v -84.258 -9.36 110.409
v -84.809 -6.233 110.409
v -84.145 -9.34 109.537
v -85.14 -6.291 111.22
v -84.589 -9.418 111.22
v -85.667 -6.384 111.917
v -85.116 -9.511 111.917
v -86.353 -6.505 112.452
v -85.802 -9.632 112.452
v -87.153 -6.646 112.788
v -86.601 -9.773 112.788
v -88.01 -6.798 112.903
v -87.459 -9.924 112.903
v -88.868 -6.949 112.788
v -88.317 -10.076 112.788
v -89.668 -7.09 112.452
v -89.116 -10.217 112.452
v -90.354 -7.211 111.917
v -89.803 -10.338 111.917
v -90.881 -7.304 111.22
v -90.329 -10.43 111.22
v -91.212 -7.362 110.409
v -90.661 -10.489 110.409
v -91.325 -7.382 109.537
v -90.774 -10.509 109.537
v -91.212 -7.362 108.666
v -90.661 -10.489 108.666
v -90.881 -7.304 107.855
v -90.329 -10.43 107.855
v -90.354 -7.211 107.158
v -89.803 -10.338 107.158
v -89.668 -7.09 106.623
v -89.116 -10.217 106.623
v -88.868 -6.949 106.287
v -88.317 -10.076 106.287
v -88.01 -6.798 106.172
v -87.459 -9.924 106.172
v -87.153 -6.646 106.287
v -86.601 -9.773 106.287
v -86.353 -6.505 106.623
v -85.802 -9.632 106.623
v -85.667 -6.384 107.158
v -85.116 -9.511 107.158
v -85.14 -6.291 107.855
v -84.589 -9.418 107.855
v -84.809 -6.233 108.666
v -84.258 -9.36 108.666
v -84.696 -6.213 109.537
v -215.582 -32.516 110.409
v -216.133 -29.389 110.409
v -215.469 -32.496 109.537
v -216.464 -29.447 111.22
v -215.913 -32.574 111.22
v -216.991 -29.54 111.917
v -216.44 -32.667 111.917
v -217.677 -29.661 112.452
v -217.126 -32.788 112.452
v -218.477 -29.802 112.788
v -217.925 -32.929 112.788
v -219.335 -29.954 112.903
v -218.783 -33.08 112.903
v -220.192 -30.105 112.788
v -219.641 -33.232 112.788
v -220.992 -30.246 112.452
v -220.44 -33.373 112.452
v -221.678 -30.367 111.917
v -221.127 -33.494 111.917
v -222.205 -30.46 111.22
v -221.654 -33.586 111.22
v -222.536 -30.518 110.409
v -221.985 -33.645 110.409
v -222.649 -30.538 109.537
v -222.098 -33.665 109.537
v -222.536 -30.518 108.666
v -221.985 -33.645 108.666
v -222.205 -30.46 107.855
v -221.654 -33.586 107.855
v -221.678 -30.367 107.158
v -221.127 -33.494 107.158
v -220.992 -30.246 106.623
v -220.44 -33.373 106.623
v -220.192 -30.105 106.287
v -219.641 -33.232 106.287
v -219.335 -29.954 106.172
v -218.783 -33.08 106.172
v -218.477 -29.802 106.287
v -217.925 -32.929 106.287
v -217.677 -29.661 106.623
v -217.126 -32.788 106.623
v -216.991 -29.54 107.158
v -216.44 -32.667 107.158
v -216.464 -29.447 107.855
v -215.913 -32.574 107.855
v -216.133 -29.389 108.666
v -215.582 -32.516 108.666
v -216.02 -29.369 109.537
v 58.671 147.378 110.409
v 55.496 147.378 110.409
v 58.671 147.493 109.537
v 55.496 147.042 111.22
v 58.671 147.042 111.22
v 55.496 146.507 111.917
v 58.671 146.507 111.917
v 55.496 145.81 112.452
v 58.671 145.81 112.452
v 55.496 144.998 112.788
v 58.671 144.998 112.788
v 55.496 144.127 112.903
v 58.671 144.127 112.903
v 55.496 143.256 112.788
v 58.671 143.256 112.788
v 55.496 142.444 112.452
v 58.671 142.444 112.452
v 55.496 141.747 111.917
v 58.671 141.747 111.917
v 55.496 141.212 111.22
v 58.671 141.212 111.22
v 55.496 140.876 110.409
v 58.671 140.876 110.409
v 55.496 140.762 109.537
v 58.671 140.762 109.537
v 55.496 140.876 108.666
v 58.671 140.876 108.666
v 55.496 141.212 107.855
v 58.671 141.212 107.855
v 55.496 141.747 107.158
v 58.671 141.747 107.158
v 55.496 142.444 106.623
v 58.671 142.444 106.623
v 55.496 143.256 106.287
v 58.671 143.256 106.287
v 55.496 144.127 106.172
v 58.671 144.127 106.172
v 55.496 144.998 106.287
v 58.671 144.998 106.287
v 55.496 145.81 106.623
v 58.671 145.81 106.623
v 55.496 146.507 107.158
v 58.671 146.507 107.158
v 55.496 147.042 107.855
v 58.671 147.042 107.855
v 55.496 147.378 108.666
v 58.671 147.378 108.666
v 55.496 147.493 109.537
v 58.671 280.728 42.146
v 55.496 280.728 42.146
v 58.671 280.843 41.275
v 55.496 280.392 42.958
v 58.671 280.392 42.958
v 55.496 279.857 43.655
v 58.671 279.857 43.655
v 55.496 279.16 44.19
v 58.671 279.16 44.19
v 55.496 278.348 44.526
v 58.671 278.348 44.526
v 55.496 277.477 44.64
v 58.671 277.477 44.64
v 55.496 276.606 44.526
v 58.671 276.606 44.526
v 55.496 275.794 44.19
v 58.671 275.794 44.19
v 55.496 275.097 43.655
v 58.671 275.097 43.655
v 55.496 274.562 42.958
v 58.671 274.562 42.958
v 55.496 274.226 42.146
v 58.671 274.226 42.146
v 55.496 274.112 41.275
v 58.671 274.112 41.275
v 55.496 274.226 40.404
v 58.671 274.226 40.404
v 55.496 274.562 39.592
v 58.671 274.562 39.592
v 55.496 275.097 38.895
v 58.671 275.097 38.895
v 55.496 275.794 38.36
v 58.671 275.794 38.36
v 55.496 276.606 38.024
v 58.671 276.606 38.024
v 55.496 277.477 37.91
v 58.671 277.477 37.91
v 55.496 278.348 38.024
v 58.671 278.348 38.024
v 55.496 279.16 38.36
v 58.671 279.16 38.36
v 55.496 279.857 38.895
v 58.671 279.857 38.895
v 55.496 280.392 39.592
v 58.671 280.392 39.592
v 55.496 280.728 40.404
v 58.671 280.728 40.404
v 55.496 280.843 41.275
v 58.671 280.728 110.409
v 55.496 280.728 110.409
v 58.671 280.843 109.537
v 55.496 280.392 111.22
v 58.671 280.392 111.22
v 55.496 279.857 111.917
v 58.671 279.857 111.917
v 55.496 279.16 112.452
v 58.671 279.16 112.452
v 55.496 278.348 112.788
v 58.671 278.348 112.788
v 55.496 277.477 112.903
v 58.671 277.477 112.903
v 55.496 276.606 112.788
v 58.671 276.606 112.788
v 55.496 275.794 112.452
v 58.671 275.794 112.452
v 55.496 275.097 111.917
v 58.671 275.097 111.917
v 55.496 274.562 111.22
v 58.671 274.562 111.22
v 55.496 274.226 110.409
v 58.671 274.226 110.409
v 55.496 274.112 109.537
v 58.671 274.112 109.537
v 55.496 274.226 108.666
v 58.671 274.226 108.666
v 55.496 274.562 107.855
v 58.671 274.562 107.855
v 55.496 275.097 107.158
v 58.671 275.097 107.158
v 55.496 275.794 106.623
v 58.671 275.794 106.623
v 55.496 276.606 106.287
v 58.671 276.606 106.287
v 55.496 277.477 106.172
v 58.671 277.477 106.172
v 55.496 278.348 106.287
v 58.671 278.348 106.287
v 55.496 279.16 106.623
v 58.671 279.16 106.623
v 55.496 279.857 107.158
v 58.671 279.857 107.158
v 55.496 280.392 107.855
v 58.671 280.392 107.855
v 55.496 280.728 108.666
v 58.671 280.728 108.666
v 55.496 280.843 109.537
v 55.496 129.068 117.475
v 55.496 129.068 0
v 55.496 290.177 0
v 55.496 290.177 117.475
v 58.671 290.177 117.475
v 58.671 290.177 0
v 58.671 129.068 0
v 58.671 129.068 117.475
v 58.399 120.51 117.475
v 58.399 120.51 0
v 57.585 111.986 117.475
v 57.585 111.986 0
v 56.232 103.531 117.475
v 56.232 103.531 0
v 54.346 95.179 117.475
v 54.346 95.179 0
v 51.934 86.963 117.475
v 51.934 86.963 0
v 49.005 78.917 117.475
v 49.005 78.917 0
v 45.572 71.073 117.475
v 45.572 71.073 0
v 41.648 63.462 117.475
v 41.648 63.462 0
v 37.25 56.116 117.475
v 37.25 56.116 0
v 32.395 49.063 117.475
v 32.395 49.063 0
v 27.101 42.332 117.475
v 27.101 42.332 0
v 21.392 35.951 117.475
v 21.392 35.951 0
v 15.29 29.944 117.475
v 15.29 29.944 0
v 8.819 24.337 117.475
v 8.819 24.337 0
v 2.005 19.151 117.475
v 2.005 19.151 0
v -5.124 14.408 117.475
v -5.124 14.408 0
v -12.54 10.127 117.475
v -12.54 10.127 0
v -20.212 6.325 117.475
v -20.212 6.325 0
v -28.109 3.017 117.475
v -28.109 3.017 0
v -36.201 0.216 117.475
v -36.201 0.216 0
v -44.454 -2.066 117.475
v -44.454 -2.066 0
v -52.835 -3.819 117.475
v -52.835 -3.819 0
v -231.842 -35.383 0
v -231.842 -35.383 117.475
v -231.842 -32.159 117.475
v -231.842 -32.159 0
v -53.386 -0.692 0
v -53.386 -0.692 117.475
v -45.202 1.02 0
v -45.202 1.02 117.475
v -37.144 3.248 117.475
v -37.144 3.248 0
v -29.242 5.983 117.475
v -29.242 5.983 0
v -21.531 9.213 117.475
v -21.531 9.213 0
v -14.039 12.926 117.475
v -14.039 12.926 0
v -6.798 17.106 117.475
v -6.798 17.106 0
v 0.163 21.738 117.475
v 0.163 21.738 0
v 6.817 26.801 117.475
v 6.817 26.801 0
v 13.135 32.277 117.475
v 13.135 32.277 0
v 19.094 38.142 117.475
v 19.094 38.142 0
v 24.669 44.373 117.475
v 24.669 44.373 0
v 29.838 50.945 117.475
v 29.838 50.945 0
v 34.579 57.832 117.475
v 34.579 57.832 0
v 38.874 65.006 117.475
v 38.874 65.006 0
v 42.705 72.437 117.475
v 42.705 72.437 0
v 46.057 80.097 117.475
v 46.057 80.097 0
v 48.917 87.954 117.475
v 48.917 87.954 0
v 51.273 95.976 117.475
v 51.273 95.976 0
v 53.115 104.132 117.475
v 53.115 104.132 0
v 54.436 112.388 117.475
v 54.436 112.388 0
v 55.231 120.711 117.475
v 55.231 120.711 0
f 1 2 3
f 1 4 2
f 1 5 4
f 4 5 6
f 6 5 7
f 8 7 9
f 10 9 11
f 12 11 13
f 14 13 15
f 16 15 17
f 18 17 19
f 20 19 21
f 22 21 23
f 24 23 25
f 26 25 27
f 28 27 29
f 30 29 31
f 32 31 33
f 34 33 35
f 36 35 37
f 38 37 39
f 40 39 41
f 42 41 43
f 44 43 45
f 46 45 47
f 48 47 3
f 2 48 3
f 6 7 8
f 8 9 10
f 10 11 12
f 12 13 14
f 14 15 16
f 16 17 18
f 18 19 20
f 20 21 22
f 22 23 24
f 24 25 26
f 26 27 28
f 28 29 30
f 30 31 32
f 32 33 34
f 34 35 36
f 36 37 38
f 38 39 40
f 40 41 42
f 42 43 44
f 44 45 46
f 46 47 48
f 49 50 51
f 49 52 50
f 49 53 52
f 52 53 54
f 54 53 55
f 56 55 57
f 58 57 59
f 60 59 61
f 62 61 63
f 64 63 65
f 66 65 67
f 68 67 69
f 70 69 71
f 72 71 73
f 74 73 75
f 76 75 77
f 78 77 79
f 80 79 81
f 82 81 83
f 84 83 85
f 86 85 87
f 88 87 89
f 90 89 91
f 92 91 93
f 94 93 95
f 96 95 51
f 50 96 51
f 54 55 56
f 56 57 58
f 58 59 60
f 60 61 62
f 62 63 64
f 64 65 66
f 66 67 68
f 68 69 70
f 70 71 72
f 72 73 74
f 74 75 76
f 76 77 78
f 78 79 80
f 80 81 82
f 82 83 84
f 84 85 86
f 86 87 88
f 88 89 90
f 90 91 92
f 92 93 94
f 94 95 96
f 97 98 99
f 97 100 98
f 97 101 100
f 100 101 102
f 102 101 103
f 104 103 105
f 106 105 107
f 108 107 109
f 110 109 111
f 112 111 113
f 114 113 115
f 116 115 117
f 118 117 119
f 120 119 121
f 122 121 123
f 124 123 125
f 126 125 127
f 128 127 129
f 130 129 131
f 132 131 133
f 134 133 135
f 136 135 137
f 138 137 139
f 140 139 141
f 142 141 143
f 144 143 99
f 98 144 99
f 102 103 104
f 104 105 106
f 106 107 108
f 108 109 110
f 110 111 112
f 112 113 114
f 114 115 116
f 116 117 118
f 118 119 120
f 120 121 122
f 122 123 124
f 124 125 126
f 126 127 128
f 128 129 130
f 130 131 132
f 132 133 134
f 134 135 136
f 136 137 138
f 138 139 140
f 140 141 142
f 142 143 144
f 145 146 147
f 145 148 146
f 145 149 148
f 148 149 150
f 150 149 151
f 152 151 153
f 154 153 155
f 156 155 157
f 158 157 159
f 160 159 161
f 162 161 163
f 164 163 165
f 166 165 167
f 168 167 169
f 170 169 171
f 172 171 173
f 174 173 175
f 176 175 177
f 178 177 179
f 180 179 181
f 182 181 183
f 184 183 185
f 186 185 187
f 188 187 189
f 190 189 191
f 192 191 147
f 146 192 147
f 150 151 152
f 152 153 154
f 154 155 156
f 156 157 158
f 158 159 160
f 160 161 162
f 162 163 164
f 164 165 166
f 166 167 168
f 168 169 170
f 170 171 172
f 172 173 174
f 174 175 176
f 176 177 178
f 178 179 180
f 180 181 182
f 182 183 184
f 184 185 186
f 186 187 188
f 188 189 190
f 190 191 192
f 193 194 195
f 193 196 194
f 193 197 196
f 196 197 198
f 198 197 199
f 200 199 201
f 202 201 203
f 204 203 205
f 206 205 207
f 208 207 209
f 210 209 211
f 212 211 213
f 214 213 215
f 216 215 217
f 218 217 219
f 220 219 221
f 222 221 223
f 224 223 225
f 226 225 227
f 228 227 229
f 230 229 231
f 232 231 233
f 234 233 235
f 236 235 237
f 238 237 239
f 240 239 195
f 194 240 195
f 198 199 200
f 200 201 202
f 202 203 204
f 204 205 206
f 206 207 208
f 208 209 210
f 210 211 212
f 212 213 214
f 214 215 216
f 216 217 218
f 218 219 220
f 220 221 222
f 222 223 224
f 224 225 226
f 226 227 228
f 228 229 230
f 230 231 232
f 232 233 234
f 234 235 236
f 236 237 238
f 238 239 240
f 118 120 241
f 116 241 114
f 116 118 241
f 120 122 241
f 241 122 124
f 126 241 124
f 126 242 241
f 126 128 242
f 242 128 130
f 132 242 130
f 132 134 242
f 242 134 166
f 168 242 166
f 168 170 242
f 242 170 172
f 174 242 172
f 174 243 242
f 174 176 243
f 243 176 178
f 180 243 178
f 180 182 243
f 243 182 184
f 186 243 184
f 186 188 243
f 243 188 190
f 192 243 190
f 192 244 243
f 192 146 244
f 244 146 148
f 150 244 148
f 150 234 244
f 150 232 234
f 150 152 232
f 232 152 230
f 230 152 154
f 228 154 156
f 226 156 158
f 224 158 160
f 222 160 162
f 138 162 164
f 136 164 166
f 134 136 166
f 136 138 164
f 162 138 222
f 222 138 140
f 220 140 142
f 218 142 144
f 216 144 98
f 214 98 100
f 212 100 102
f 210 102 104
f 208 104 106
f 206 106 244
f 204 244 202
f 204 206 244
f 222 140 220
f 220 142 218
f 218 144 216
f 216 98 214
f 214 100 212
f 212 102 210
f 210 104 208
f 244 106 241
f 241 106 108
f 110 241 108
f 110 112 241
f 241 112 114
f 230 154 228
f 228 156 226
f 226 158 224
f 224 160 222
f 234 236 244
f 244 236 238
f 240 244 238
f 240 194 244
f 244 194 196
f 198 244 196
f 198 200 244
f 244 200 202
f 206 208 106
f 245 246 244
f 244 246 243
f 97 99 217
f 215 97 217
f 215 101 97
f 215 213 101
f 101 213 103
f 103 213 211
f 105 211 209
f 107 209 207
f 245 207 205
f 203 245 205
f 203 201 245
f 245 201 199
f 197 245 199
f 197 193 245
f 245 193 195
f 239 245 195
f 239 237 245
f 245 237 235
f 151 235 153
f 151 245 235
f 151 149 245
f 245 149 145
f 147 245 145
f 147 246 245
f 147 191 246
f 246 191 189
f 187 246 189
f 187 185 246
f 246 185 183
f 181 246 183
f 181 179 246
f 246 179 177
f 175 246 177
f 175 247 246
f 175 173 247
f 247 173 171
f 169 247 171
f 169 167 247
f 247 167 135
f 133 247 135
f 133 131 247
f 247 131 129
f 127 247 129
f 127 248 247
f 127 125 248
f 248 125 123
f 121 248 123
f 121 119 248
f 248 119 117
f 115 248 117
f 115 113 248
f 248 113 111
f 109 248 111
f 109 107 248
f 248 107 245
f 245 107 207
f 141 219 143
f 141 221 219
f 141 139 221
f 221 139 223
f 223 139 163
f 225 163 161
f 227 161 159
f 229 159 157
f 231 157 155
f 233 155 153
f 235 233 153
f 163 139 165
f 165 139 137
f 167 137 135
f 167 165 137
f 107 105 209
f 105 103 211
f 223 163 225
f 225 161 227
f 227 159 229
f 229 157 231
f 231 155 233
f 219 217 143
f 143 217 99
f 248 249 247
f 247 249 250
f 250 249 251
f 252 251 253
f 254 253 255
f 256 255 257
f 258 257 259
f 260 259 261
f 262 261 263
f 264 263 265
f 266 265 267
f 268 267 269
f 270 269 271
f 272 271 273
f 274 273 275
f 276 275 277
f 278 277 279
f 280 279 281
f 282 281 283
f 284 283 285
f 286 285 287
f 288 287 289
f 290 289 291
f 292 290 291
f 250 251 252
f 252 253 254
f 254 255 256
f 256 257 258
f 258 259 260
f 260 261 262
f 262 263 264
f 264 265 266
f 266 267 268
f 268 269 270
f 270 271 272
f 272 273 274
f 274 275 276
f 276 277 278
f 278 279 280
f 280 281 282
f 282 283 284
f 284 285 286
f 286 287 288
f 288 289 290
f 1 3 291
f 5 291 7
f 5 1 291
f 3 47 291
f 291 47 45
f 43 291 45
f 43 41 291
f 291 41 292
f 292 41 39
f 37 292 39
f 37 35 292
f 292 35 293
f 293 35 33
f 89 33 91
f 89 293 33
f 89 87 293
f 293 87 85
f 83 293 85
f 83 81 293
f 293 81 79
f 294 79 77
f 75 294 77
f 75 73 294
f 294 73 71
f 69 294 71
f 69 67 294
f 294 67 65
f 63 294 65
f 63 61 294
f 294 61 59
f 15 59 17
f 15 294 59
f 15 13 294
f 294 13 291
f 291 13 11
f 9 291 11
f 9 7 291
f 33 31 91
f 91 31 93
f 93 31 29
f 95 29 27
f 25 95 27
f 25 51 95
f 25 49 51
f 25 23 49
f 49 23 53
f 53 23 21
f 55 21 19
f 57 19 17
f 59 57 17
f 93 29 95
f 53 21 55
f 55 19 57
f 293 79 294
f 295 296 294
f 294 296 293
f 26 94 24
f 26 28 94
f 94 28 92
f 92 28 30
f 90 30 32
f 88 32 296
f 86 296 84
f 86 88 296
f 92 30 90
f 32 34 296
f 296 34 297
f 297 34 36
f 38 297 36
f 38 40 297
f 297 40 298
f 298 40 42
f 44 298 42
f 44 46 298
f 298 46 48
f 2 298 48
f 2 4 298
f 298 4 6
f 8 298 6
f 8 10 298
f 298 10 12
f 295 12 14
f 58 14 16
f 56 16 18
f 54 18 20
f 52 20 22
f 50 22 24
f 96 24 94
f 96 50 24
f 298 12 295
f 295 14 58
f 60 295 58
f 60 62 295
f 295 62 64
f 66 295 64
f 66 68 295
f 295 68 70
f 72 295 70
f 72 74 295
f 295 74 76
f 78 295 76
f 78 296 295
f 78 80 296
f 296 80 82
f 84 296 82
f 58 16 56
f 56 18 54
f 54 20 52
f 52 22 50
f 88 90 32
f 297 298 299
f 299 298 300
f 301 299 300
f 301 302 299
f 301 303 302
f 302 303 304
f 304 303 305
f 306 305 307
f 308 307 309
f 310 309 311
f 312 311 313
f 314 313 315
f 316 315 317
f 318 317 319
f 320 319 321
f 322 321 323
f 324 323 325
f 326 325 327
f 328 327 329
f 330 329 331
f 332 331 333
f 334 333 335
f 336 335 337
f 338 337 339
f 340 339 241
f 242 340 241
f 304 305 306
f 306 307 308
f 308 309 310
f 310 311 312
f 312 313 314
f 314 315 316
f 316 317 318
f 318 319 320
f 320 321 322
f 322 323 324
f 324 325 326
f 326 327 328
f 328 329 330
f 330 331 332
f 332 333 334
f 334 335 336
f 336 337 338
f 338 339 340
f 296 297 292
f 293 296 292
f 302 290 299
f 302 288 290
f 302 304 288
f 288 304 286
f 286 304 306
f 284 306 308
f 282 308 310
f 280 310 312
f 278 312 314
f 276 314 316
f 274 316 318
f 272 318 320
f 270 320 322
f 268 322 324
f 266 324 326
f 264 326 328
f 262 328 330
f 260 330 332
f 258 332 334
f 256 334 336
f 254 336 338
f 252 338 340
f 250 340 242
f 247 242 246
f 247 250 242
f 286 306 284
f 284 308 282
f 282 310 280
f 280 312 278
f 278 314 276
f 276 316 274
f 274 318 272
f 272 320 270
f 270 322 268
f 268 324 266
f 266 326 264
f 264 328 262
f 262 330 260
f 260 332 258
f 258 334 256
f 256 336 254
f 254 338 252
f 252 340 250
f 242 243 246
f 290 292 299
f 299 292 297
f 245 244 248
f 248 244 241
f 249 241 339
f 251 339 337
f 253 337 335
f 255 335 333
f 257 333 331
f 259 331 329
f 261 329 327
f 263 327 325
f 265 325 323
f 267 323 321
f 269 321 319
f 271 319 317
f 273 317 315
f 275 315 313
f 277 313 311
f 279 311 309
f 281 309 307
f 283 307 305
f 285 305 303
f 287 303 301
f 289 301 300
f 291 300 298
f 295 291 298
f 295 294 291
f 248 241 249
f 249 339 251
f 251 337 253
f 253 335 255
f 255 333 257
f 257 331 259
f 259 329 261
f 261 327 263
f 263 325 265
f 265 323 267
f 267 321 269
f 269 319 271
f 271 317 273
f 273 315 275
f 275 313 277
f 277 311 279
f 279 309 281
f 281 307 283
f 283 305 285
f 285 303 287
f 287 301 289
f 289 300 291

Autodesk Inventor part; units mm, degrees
ref_plane "YZ Plane" through (0, 0, 0) normal (1, 0, 0) x (0, 1, 0)
ref_plane "XZ Plane" through (0, 0, 0) normal (0, 1, 0) x (-1, 0, 0)
ref_plane "XY Plane" through (0, 0, 0) normal (0, 0, 1) x (1, 0, 0)
sketch "Sketch1" plane through (0, 0, 0) normal (0, 0, 1) x (1, 0, 0)
  arc A0 (-53.3863, -0.6924) -> (55.4959, 129.0683) centre (-76.2666, 129.0683) ccw projected
  line L0 (-53.3863, -0.6924) -> (-231.8416, -32.1589) projected
  line L1 (-231.8416, -35.3829) -> (-231.8416, -32.1589) projected
  line L2 (-231.8416, -35.3829) -> (-52.835, -3.8192) projected
  arc A1 (-52.835, -3.8192) -> (58.6709, 129.0683) centre (-76.2666, 129.0683) ccw projected
  line L3 (58.6709, 129.0683) -> (58.6709, 290.177) projected
  line L4 (55.4959, 290.177) -> (58.6709, 290.177) projected
  line L5 (55.4959, 290.177) -> (55.4959, 129.0683) projected
  point P0 (0, 0)
extrude "Extrusion1" add sketch "Sketch1" along normal blind 117.475
hole "Hole1" at (55.4959, 277.477, 109.5375) direction (1, 0, 0) diameter 6.731 depth 25.4 tip angle 118
pattern_linear "Rectangular Pattern1" count 2 spacing 68.2625 along (0, 0, -1) of "Hole1"
pattern_linear "Rectangular Pattern2" count 2 spacing 133.35 along (0, -1, 0) of "Hole1"
hole "Hole2" at (-219.3346, -29.9536, 109.5375) direction (0.1736482, -0.9848078, 0) diameter 6.731 depth 25.4 tip angle 118
pattern_linear "Rectangular Pattern3" count 2 spacing 133.35 along (0.9848078, 0.1736482, 0) of "Hole2"
properties part number "GE-12071-03"
